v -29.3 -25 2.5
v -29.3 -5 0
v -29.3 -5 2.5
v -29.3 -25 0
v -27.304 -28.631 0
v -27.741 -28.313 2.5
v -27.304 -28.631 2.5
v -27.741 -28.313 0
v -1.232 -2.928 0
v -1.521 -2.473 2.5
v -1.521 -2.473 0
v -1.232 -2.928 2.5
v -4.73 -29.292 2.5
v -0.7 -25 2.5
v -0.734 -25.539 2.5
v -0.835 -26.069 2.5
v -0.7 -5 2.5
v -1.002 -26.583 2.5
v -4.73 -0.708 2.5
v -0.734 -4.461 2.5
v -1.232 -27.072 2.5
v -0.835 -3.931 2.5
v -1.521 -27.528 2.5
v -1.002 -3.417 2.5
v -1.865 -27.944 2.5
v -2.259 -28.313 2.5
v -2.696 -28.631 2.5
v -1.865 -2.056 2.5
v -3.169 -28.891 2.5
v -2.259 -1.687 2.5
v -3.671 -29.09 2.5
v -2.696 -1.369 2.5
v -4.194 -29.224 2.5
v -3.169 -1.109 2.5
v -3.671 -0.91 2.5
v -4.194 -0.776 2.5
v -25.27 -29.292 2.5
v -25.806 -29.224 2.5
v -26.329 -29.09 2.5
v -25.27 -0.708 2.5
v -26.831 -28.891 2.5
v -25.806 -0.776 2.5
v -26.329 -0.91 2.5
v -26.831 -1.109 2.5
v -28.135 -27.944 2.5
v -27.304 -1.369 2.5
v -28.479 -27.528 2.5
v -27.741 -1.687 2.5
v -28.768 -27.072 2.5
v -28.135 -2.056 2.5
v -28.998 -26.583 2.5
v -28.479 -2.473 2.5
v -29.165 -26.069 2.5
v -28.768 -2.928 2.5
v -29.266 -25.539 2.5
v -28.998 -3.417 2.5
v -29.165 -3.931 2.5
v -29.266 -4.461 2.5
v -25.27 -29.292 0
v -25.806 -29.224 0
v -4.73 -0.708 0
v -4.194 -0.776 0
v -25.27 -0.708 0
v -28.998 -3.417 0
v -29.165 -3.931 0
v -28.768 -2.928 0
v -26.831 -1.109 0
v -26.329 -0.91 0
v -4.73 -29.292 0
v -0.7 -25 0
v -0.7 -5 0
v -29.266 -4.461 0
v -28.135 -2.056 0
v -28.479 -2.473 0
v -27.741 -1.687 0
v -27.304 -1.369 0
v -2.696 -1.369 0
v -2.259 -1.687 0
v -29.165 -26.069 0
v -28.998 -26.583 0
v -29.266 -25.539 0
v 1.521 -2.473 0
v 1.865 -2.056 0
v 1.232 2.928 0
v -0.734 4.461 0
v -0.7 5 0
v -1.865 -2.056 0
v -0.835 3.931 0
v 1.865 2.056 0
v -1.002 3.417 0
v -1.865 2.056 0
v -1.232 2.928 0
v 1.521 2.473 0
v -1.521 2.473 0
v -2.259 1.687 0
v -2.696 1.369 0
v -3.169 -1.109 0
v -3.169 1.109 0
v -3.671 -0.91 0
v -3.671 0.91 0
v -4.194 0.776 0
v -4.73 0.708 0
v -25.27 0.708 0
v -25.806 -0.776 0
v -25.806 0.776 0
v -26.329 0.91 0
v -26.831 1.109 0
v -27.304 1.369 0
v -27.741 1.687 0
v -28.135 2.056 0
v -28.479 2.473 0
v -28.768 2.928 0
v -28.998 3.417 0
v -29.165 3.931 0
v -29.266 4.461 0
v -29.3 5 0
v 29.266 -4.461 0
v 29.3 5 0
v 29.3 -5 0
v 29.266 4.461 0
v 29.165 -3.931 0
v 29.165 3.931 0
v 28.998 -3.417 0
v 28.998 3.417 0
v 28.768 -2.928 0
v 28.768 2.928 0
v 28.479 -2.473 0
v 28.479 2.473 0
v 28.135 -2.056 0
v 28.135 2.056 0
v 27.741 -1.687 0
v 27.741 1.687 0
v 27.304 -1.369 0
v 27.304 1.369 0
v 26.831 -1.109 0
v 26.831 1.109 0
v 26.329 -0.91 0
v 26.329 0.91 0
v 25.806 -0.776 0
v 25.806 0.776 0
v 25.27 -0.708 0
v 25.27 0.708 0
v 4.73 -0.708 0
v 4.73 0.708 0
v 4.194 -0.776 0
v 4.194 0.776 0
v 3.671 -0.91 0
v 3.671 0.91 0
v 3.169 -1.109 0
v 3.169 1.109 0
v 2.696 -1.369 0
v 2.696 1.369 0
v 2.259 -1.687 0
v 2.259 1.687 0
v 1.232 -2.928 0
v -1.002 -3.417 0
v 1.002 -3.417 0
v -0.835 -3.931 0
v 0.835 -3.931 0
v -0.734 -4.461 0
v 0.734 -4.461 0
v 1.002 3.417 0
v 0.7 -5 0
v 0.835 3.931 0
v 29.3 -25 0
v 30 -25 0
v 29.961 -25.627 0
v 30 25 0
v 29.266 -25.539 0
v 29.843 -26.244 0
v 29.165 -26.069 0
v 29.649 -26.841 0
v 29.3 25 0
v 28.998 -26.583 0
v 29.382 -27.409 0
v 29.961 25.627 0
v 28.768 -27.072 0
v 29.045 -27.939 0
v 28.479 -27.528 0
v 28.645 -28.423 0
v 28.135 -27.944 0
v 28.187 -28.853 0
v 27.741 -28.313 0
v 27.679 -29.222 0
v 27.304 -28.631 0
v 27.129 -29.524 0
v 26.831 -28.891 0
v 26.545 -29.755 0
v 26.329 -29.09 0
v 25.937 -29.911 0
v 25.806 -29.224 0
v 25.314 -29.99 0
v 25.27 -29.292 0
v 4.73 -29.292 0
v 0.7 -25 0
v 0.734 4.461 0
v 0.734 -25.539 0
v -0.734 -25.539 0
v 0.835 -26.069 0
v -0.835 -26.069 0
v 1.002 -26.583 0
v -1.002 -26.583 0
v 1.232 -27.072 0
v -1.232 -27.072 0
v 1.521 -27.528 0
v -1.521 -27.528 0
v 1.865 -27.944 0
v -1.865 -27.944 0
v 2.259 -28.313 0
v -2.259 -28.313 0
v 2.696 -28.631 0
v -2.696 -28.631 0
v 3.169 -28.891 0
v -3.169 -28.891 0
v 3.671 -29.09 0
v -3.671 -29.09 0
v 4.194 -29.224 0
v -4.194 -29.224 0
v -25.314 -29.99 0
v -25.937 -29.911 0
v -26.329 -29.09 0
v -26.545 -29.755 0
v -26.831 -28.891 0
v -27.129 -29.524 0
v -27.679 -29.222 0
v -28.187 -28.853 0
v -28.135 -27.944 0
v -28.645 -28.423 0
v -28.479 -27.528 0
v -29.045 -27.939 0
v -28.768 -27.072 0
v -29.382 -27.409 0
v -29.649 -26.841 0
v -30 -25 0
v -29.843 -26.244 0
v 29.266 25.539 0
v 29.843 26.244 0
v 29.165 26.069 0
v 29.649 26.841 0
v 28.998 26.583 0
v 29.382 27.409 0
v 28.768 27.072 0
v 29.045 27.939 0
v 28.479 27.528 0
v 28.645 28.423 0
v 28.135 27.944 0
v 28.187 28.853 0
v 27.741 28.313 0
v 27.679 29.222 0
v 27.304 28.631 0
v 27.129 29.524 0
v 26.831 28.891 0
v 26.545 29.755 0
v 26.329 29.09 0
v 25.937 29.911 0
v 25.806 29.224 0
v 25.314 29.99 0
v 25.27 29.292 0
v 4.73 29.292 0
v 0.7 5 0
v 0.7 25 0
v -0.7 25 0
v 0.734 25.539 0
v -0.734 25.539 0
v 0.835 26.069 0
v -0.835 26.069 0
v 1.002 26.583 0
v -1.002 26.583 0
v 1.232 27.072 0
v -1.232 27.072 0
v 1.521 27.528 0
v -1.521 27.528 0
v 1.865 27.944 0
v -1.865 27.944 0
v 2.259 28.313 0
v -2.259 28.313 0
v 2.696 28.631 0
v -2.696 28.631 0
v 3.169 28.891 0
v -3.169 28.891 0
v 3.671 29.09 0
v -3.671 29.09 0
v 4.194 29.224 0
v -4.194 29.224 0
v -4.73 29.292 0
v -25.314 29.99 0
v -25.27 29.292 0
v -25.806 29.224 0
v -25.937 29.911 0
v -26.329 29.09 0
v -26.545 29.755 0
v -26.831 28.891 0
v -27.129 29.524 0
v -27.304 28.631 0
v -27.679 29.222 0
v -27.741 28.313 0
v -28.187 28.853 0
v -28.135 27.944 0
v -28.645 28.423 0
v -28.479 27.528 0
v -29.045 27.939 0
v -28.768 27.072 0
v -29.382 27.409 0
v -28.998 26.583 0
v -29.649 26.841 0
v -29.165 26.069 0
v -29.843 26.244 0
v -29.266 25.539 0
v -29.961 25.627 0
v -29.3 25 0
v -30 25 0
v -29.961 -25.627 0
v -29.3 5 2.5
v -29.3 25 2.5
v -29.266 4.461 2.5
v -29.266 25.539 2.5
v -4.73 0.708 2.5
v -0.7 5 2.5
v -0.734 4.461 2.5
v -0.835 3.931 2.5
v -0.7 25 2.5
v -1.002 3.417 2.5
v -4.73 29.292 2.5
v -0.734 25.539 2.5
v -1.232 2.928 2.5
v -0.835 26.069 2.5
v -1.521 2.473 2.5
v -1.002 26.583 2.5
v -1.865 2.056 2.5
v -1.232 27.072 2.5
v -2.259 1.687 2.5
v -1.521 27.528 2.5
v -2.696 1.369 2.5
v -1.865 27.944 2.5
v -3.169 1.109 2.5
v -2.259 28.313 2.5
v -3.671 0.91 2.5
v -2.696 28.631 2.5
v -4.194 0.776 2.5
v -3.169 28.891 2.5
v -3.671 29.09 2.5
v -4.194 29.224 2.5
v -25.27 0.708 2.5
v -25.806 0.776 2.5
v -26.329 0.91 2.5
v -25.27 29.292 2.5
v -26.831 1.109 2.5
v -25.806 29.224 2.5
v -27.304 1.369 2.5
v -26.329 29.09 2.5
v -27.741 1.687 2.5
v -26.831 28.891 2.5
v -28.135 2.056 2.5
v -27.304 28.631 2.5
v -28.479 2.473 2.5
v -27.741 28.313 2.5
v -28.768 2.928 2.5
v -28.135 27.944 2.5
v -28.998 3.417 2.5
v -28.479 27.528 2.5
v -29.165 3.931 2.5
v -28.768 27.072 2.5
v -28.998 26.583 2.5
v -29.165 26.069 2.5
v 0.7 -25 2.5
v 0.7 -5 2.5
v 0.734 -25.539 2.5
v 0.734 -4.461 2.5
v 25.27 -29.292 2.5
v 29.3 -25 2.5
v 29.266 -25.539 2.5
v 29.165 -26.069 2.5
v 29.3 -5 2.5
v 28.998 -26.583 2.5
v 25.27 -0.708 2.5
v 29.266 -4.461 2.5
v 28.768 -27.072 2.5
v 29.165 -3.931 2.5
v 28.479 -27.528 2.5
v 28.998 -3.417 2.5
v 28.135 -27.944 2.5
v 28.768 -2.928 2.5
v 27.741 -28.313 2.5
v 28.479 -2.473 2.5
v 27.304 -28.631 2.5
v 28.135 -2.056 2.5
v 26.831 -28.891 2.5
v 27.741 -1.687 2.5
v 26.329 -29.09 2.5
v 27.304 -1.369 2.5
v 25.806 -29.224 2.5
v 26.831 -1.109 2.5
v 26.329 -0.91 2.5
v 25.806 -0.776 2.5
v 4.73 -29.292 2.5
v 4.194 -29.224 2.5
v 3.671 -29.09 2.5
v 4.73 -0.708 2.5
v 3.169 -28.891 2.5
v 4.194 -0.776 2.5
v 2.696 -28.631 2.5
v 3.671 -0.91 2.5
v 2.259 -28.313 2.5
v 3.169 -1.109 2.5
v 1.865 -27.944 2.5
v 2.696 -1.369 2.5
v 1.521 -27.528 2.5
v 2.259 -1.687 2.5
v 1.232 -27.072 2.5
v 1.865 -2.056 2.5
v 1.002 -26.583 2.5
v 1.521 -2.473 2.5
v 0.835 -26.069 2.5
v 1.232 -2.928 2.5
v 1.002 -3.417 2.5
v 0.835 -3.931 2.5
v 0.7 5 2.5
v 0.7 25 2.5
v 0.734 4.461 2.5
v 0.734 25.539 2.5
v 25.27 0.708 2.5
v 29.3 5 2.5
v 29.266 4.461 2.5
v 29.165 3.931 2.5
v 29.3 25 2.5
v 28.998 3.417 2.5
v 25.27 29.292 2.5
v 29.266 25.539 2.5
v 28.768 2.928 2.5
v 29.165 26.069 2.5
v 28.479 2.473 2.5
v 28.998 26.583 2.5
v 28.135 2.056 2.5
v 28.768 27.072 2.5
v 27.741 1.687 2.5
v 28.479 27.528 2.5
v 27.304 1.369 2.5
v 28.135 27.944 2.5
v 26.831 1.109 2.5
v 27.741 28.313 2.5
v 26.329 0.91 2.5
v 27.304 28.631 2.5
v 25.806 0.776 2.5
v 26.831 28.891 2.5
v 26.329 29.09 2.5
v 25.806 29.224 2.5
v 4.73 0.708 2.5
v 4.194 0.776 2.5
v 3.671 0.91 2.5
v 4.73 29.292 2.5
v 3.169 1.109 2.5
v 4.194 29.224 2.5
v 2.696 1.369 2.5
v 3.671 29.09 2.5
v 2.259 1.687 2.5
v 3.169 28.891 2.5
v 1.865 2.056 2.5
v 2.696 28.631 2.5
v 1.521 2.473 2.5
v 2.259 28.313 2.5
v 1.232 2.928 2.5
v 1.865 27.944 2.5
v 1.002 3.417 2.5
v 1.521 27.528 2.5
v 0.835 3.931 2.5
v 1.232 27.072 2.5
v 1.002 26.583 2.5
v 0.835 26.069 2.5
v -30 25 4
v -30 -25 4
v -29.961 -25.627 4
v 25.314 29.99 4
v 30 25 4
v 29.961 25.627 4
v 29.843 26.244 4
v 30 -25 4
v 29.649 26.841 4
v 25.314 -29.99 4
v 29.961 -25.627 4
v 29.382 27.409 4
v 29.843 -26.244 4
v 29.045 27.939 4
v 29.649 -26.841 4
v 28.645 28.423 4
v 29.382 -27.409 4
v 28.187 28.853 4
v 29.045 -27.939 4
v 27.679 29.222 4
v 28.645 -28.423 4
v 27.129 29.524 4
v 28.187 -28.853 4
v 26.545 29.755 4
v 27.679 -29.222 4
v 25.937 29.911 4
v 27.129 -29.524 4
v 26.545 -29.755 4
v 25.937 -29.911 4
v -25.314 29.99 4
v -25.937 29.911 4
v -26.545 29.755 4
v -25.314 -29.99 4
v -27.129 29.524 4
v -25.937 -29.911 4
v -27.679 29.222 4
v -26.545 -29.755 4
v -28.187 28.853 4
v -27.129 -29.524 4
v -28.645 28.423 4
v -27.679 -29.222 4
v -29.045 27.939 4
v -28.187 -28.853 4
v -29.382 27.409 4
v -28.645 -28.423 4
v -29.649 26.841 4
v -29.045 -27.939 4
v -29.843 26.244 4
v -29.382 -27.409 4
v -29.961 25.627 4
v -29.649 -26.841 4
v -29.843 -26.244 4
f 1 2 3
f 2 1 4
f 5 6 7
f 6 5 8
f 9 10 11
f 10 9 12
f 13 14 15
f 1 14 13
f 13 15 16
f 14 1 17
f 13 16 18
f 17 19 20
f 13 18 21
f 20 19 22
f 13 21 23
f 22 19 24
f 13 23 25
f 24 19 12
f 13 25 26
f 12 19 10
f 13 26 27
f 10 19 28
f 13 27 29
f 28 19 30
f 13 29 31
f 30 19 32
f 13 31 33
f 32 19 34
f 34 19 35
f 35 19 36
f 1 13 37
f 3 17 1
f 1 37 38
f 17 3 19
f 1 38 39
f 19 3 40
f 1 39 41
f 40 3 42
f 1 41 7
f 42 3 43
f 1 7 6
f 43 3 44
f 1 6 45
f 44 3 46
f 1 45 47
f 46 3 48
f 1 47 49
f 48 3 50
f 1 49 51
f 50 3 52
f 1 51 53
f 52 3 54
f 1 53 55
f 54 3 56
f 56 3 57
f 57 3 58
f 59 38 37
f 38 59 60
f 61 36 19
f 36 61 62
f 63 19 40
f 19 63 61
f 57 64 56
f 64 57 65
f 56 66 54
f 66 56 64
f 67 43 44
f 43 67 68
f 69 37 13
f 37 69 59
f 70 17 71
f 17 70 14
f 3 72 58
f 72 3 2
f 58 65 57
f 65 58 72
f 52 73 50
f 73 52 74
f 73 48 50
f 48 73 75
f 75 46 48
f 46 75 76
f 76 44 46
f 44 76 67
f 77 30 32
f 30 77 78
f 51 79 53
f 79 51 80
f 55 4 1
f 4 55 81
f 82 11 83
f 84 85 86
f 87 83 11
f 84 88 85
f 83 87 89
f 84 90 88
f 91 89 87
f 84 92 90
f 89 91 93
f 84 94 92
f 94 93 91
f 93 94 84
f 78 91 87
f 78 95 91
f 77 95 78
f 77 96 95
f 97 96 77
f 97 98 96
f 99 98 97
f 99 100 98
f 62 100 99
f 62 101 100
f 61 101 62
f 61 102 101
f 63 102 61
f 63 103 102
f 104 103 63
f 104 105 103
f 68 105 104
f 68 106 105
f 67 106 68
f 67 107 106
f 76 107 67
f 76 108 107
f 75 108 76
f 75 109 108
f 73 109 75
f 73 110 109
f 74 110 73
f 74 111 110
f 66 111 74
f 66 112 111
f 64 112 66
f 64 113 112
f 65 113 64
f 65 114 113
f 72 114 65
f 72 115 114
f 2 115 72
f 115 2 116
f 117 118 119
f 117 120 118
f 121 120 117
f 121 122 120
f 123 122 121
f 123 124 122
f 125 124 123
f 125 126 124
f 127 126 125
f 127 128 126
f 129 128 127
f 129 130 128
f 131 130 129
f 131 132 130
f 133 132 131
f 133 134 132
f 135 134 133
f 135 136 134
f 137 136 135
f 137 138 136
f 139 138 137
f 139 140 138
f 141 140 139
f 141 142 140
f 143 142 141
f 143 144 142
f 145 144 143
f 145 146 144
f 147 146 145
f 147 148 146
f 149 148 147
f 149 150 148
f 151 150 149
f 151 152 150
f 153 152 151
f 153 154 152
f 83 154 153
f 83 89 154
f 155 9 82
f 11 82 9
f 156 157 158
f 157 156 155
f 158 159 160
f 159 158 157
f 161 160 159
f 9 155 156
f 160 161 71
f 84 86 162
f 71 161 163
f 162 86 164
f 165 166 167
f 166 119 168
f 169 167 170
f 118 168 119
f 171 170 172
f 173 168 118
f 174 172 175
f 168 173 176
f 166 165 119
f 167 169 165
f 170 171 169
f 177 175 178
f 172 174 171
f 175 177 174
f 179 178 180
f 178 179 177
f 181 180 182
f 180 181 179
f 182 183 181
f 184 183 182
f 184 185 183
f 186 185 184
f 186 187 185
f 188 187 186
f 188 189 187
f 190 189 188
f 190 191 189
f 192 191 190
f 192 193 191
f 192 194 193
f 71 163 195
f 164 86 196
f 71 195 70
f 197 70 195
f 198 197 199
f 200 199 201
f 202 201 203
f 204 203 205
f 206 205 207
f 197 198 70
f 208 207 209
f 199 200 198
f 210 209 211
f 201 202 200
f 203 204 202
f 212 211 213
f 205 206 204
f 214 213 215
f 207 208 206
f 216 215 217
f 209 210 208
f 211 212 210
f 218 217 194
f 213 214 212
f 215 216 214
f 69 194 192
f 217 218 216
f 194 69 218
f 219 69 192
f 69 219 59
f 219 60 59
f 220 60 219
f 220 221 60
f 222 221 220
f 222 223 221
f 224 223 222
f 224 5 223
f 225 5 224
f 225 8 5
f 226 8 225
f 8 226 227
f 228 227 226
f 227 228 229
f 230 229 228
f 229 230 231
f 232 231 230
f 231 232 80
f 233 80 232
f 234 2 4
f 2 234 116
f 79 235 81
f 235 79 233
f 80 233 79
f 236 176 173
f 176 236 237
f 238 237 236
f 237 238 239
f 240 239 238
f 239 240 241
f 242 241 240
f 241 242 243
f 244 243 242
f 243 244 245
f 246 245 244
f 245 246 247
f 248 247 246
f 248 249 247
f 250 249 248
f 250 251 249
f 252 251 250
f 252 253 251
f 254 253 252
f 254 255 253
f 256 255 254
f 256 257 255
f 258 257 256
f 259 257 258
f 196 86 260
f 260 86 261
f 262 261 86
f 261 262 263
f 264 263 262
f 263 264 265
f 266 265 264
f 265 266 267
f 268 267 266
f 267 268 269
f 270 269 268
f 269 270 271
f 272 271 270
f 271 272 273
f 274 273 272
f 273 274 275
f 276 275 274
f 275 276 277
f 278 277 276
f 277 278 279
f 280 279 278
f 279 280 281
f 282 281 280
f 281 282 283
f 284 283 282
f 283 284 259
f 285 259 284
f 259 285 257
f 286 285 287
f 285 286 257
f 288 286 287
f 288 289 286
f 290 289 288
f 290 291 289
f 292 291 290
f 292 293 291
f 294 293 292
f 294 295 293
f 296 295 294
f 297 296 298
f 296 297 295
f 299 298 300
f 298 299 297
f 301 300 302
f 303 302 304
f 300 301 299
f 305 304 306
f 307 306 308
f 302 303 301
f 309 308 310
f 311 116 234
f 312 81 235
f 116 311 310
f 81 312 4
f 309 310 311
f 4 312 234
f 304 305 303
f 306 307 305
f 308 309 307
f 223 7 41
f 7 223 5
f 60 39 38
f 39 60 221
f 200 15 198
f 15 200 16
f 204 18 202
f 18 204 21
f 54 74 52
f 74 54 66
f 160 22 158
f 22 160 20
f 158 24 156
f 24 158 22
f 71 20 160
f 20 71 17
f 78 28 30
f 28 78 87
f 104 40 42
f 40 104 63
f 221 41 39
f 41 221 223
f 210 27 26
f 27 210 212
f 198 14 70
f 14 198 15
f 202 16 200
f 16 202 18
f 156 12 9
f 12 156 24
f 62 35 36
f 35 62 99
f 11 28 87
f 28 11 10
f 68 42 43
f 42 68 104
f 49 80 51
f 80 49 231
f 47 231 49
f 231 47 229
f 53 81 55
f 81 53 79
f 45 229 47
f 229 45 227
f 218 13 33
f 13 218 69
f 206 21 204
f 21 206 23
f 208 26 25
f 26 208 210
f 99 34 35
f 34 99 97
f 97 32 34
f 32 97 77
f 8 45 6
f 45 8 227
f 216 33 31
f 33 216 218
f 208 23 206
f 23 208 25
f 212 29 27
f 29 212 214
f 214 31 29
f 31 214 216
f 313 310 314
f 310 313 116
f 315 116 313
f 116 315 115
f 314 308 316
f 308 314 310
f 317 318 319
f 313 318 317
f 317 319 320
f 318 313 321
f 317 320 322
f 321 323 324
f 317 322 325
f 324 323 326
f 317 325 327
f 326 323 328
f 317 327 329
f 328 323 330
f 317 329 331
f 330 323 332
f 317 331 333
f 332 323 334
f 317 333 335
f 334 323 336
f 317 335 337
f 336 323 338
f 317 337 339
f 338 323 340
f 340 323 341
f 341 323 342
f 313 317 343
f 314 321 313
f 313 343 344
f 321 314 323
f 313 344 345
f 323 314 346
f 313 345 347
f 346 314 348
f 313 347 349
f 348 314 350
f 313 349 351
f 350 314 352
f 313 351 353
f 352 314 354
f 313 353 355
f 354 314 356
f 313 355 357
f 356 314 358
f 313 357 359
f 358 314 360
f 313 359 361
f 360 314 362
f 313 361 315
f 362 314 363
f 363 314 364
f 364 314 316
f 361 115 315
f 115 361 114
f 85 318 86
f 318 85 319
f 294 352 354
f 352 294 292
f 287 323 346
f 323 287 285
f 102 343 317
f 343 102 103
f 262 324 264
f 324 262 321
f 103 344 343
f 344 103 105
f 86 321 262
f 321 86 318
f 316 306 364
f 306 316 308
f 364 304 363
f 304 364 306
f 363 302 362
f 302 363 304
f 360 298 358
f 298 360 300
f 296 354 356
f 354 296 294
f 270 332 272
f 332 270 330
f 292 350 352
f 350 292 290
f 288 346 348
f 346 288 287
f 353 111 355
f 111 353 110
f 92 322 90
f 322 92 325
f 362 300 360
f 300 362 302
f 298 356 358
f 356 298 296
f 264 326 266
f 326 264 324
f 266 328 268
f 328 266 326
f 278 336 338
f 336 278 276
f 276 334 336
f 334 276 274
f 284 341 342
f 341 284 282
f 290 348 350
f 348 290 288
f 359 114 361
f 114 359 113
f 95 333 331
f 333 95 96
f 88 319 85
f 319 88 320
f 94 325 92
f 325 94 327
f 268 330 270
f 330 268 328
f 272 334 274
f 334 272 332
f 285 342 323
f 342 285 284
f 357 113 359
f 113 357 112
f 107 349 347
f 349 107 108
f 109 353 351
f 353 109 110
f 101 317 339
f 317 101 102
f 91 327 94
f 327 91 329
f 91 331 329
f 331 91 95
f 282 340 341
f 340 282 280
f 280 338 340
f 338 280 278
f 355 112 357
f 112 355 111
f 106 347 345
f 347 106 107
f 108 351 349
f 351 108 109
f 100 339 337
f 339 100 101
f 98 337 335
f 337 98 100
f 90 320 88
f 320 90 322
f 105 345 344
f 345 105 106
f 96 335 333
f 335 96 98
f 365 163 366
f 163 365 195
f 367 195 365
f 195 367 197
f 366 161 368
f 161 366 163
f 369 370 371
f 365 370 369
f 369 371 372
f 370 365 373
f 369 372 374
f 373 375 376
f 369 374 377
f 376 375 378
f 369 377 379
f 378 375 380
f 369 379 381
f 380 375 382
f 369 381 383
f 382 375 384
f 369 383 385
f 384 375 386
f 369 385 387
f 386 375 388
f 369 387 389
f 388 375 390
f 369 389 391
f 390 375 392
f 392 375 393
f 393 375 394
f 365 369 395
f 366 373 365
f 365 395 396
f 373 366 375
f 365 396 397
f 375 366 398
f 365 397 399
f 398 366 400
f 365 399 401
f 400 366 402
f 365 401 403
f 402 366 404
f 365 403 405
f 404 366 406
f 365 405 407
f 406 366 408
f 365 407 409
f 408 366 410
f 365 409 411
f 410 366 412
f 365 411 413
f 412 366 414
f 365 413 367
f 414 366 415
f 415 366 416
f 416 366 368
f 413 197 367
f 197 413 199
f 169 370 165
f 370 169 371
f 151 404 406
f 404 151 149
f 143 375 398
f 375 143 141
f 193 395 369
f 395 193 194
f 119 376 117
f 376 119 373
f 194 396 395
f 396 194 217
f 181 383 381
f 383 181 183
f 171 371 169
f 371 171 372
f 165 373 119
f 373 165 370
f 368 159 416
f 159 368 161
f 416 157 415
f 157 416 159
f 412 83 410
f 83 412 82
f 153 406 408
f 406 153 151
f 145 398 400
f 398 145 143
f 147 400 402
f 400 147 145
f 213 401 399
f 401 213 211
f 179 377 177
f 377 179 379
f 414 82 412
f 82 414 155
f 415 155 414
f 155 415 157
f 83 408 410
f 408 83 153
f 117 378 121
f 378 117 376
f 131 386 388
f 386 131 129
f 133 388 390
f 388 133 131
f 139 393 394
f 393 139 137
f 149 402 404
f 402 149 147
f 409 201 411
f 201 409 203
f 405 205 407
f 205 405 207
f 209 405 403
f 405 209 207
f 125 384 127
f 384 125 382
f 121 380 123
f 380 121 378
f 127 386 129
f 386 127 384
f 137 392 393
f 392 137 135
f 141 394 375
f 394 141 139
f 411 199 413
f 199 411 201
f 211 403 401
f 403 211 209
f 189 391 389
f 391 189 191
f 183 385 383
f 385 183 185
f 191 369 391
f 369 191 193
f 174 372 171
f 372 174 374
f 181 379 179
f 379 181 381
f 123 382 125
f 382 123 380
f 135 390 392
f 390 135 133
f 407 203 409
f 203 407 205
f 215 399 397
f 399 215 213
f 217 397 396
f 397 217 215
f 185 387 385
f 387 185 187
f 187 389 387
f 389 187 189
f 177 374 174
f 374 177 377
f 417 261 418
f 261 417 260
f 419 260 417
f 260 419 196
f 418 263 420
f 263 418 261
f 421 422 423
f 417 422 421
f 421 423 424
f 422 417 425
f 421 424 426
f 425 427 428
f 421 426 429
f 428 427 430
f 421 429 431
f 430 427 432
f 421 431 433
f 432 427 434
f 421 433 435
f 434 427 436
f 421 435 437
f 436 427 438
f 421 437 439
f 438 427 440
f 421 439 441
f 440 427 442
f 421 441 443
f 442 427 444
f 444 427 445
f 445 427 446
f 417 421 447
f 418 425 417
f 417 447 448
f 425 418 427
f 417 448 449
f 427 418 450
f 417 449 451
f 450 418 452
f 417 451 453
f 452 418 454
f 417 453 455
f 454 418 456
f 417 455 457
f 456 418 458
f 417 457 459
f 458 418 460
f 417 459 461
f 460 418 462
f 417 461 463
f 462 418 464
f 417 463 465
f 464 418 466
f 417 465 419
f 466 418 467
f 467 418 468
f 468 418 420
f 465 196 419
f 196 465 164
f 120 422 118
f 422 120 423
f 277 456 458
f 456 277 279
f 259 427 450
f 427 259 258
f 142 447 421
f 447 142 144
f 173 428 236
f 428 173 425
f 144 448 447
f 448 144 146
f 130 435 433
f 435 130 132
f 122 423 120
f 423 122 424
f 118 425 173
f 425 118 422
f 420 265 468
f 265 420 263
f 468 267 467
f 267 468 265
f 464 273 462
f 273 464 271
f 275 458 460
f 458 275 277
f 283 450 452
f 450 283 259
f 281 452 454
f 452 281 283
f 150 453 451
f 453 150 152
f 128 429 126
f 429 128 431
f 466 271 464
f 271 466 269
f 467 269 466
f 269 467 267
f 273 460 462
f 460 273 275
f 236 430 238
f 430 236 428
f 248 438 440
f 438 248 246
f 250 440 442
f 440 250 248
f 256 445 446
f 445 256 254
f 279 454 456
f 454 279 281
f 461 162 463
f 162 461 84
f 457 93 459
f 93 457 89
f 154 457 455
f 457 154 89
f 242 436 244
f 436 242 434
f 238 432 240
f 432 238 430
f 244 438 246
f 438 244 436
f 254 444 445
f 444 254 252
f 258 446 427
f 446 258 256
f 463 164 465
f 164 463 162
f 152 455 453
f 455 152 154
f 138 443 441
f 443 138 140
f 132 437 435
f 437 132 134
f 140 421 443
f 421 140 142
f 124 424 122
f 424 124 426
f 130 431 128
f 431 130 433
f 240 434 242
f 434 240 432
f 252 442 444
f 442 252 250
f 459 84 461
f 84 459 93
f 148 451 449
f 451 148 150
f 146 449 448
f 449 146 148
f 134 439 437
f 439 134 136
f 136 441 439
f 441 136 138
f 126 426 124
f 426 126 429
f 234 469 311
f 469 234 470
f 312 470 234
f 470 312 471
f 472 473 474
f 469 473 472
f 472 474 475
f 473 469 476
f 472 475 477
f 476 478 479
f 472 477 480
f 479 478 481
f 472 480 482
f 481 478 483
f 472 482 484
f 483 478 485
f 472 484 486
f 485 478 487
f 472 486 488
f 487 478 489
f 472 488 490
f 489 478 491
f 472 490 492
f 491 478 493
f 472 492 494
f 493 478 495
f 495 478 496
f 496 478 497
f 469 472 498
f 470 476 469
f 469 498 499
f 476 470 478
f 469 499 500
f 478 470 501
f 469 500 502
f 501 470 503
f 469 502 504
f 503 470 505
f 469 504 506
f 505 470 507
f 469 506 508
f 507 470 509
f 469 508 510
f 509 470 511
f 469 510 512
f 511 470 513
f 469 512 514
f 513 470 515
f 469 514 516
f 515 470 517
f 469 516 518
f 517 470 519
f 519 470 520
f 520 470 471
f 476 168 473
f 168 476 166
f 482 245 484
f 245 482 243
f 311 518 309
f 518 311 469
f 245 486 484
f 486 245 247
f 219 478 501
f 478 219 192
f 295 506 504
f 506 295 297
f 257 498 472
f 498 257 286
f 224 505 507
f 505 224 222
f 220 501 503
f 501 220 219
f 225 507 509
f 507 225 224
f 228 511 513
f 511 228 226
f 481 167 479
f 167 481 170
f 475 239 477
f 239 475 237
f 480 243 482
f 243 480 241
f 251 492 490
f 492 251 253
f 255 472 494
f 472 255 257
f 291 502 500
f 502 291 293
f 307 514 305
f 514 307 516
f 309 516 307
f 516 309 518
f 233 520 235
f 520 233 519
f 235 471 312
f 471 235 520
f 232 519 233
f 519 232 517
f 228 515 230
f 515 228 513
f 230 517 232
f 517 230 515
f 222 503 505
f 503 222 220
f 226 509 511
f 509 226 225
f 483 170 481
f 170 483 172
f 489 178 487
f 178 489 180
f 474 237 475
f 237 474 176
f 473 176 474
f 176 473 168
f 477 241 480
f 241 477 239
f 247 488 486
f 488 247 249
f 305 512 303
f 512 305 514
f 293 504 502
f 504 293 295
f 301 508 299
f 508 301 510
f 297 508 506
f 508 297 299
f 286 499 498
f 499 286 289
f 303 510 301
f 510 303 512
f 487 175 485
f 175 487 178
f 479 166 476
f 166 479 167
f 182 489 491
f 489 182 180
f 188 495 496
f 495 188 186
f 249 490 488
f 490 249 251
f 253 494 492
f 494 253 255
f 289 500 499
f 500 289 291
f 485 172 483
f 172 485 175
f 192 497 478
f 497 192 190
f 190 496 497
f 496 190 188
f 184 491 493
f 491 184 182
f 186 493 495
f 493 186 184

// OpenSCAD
$fn = 50;


difference() {
	union() {
		hull() {
			translate(v = [-25.0000000000, 25.0000000000, 0]) {
				cylinder(h = 4, r = 5);
			}
			translate(v = [25.0000000000, 25.0000000000, 0]) {
				cylinder(h = 4, r = 5);
			}
			translate(v = [-25.0000000000, -25.0000000000, 0]) {
				cylinder(h = 4, r = 5);
			}
			translate(v = [25.0000000000, -25.0000000000, 0]) {
				cylinder(h = 4, r = 5);
			}
		}
	}
	union() {
		translate(v = [-15.0000000000, -15.0000000000, 0]) {
			hull() {
				translate(v = [-10.0000000000, 10.0000000000, 0]) {
					cylinder(h = 2.5000000000, r = 4.3000000000);
				}
				translate(v = [10.0000000000, 10.0000000000, 0]) {
					cylinder(h = 2.5000000000, r = 4.3000000000);
				}
				translate(v = [-10.0000000000, -10.0000000000, 0]) {
					cylinder(h = 2.5000000000, r = 4.3000000000);
				}
				translate(v = [10.0000000000, -10.0000000000, 0]) {
					cylinder(h = 2.5000000000, r = 4.3000000000);
				}
			}
		}
		translate(v = [-15.0000000000, 15.0000000000, 0]) {
			hull() {
				translate(v = [-10.0000000000, 10.0000000000, 0]) {
					cylinder(h = 2.5000000000, r = 4.3000000000);
				}
				translate(v = [10.0000000000, 10.0000000000, 0]) {
					cylinder(h = 2.5000000000, r = 4.3000000000);
				}
				translate(v = [-10.0000000000, -10.0000000000, 0]) {
					cylinder(h = 2.5000000000, r = 4.3000000000);
				}
				translate(v = [10.0000000000, -10.0000000000, 0]) {
					cylinder(h = 2.5000000000, r = 4.3000000000);
				}
			}
		}
		translate(v = [15.0000000000, -15.0000000000, 0]) {
			hull() {
				translate(v = [-10.0000000000, 10.0000000000, 0]) {
					cylinder(h = 2.5000000000, r = 4.3000000000);
				}
				translate(v = [10.0000000000, 10.0000000000, 0]) {
					cylinder(h = 2.5000000000, r = 4.3000000000);
				}
				translate(v = [-10.0000000000, -10.0000000000, 0]) {
					cylinder(h = 2.5000000000, r = 4.3000000000);
				}
				translate(v = [10.0000000000, -10.0000000000, 0]) {
					cylinder(h = 2.5000000000, r = 4.3000000000);
				}
			}
		}
		translate(v = [15.0000000000, 15.0000000000, 0]) {
			hull() {
				translate(v = [-10.0000000000, 10.0000000000, 0]) {
					cylinder(h = 2.5000000000, r = 4.3000000000);
				}
				translate(v = [10.0000000000, 10.0000000000, 0]) {
					cylinder(h = 2.5000000000, r = 4.3000000000);
				}
				translate(v = [-10.0000000000, -10.0000000000, 0]) {
					cylinder(h = 2.5000000000, r = 4.3000000000);
				}
				translate(v = [10.0000000000, -10.0000000000, 0]) {
					cylinder(h = 2.5000000000, r = 4.3000000000);
				}
			}
		}
	}
}
